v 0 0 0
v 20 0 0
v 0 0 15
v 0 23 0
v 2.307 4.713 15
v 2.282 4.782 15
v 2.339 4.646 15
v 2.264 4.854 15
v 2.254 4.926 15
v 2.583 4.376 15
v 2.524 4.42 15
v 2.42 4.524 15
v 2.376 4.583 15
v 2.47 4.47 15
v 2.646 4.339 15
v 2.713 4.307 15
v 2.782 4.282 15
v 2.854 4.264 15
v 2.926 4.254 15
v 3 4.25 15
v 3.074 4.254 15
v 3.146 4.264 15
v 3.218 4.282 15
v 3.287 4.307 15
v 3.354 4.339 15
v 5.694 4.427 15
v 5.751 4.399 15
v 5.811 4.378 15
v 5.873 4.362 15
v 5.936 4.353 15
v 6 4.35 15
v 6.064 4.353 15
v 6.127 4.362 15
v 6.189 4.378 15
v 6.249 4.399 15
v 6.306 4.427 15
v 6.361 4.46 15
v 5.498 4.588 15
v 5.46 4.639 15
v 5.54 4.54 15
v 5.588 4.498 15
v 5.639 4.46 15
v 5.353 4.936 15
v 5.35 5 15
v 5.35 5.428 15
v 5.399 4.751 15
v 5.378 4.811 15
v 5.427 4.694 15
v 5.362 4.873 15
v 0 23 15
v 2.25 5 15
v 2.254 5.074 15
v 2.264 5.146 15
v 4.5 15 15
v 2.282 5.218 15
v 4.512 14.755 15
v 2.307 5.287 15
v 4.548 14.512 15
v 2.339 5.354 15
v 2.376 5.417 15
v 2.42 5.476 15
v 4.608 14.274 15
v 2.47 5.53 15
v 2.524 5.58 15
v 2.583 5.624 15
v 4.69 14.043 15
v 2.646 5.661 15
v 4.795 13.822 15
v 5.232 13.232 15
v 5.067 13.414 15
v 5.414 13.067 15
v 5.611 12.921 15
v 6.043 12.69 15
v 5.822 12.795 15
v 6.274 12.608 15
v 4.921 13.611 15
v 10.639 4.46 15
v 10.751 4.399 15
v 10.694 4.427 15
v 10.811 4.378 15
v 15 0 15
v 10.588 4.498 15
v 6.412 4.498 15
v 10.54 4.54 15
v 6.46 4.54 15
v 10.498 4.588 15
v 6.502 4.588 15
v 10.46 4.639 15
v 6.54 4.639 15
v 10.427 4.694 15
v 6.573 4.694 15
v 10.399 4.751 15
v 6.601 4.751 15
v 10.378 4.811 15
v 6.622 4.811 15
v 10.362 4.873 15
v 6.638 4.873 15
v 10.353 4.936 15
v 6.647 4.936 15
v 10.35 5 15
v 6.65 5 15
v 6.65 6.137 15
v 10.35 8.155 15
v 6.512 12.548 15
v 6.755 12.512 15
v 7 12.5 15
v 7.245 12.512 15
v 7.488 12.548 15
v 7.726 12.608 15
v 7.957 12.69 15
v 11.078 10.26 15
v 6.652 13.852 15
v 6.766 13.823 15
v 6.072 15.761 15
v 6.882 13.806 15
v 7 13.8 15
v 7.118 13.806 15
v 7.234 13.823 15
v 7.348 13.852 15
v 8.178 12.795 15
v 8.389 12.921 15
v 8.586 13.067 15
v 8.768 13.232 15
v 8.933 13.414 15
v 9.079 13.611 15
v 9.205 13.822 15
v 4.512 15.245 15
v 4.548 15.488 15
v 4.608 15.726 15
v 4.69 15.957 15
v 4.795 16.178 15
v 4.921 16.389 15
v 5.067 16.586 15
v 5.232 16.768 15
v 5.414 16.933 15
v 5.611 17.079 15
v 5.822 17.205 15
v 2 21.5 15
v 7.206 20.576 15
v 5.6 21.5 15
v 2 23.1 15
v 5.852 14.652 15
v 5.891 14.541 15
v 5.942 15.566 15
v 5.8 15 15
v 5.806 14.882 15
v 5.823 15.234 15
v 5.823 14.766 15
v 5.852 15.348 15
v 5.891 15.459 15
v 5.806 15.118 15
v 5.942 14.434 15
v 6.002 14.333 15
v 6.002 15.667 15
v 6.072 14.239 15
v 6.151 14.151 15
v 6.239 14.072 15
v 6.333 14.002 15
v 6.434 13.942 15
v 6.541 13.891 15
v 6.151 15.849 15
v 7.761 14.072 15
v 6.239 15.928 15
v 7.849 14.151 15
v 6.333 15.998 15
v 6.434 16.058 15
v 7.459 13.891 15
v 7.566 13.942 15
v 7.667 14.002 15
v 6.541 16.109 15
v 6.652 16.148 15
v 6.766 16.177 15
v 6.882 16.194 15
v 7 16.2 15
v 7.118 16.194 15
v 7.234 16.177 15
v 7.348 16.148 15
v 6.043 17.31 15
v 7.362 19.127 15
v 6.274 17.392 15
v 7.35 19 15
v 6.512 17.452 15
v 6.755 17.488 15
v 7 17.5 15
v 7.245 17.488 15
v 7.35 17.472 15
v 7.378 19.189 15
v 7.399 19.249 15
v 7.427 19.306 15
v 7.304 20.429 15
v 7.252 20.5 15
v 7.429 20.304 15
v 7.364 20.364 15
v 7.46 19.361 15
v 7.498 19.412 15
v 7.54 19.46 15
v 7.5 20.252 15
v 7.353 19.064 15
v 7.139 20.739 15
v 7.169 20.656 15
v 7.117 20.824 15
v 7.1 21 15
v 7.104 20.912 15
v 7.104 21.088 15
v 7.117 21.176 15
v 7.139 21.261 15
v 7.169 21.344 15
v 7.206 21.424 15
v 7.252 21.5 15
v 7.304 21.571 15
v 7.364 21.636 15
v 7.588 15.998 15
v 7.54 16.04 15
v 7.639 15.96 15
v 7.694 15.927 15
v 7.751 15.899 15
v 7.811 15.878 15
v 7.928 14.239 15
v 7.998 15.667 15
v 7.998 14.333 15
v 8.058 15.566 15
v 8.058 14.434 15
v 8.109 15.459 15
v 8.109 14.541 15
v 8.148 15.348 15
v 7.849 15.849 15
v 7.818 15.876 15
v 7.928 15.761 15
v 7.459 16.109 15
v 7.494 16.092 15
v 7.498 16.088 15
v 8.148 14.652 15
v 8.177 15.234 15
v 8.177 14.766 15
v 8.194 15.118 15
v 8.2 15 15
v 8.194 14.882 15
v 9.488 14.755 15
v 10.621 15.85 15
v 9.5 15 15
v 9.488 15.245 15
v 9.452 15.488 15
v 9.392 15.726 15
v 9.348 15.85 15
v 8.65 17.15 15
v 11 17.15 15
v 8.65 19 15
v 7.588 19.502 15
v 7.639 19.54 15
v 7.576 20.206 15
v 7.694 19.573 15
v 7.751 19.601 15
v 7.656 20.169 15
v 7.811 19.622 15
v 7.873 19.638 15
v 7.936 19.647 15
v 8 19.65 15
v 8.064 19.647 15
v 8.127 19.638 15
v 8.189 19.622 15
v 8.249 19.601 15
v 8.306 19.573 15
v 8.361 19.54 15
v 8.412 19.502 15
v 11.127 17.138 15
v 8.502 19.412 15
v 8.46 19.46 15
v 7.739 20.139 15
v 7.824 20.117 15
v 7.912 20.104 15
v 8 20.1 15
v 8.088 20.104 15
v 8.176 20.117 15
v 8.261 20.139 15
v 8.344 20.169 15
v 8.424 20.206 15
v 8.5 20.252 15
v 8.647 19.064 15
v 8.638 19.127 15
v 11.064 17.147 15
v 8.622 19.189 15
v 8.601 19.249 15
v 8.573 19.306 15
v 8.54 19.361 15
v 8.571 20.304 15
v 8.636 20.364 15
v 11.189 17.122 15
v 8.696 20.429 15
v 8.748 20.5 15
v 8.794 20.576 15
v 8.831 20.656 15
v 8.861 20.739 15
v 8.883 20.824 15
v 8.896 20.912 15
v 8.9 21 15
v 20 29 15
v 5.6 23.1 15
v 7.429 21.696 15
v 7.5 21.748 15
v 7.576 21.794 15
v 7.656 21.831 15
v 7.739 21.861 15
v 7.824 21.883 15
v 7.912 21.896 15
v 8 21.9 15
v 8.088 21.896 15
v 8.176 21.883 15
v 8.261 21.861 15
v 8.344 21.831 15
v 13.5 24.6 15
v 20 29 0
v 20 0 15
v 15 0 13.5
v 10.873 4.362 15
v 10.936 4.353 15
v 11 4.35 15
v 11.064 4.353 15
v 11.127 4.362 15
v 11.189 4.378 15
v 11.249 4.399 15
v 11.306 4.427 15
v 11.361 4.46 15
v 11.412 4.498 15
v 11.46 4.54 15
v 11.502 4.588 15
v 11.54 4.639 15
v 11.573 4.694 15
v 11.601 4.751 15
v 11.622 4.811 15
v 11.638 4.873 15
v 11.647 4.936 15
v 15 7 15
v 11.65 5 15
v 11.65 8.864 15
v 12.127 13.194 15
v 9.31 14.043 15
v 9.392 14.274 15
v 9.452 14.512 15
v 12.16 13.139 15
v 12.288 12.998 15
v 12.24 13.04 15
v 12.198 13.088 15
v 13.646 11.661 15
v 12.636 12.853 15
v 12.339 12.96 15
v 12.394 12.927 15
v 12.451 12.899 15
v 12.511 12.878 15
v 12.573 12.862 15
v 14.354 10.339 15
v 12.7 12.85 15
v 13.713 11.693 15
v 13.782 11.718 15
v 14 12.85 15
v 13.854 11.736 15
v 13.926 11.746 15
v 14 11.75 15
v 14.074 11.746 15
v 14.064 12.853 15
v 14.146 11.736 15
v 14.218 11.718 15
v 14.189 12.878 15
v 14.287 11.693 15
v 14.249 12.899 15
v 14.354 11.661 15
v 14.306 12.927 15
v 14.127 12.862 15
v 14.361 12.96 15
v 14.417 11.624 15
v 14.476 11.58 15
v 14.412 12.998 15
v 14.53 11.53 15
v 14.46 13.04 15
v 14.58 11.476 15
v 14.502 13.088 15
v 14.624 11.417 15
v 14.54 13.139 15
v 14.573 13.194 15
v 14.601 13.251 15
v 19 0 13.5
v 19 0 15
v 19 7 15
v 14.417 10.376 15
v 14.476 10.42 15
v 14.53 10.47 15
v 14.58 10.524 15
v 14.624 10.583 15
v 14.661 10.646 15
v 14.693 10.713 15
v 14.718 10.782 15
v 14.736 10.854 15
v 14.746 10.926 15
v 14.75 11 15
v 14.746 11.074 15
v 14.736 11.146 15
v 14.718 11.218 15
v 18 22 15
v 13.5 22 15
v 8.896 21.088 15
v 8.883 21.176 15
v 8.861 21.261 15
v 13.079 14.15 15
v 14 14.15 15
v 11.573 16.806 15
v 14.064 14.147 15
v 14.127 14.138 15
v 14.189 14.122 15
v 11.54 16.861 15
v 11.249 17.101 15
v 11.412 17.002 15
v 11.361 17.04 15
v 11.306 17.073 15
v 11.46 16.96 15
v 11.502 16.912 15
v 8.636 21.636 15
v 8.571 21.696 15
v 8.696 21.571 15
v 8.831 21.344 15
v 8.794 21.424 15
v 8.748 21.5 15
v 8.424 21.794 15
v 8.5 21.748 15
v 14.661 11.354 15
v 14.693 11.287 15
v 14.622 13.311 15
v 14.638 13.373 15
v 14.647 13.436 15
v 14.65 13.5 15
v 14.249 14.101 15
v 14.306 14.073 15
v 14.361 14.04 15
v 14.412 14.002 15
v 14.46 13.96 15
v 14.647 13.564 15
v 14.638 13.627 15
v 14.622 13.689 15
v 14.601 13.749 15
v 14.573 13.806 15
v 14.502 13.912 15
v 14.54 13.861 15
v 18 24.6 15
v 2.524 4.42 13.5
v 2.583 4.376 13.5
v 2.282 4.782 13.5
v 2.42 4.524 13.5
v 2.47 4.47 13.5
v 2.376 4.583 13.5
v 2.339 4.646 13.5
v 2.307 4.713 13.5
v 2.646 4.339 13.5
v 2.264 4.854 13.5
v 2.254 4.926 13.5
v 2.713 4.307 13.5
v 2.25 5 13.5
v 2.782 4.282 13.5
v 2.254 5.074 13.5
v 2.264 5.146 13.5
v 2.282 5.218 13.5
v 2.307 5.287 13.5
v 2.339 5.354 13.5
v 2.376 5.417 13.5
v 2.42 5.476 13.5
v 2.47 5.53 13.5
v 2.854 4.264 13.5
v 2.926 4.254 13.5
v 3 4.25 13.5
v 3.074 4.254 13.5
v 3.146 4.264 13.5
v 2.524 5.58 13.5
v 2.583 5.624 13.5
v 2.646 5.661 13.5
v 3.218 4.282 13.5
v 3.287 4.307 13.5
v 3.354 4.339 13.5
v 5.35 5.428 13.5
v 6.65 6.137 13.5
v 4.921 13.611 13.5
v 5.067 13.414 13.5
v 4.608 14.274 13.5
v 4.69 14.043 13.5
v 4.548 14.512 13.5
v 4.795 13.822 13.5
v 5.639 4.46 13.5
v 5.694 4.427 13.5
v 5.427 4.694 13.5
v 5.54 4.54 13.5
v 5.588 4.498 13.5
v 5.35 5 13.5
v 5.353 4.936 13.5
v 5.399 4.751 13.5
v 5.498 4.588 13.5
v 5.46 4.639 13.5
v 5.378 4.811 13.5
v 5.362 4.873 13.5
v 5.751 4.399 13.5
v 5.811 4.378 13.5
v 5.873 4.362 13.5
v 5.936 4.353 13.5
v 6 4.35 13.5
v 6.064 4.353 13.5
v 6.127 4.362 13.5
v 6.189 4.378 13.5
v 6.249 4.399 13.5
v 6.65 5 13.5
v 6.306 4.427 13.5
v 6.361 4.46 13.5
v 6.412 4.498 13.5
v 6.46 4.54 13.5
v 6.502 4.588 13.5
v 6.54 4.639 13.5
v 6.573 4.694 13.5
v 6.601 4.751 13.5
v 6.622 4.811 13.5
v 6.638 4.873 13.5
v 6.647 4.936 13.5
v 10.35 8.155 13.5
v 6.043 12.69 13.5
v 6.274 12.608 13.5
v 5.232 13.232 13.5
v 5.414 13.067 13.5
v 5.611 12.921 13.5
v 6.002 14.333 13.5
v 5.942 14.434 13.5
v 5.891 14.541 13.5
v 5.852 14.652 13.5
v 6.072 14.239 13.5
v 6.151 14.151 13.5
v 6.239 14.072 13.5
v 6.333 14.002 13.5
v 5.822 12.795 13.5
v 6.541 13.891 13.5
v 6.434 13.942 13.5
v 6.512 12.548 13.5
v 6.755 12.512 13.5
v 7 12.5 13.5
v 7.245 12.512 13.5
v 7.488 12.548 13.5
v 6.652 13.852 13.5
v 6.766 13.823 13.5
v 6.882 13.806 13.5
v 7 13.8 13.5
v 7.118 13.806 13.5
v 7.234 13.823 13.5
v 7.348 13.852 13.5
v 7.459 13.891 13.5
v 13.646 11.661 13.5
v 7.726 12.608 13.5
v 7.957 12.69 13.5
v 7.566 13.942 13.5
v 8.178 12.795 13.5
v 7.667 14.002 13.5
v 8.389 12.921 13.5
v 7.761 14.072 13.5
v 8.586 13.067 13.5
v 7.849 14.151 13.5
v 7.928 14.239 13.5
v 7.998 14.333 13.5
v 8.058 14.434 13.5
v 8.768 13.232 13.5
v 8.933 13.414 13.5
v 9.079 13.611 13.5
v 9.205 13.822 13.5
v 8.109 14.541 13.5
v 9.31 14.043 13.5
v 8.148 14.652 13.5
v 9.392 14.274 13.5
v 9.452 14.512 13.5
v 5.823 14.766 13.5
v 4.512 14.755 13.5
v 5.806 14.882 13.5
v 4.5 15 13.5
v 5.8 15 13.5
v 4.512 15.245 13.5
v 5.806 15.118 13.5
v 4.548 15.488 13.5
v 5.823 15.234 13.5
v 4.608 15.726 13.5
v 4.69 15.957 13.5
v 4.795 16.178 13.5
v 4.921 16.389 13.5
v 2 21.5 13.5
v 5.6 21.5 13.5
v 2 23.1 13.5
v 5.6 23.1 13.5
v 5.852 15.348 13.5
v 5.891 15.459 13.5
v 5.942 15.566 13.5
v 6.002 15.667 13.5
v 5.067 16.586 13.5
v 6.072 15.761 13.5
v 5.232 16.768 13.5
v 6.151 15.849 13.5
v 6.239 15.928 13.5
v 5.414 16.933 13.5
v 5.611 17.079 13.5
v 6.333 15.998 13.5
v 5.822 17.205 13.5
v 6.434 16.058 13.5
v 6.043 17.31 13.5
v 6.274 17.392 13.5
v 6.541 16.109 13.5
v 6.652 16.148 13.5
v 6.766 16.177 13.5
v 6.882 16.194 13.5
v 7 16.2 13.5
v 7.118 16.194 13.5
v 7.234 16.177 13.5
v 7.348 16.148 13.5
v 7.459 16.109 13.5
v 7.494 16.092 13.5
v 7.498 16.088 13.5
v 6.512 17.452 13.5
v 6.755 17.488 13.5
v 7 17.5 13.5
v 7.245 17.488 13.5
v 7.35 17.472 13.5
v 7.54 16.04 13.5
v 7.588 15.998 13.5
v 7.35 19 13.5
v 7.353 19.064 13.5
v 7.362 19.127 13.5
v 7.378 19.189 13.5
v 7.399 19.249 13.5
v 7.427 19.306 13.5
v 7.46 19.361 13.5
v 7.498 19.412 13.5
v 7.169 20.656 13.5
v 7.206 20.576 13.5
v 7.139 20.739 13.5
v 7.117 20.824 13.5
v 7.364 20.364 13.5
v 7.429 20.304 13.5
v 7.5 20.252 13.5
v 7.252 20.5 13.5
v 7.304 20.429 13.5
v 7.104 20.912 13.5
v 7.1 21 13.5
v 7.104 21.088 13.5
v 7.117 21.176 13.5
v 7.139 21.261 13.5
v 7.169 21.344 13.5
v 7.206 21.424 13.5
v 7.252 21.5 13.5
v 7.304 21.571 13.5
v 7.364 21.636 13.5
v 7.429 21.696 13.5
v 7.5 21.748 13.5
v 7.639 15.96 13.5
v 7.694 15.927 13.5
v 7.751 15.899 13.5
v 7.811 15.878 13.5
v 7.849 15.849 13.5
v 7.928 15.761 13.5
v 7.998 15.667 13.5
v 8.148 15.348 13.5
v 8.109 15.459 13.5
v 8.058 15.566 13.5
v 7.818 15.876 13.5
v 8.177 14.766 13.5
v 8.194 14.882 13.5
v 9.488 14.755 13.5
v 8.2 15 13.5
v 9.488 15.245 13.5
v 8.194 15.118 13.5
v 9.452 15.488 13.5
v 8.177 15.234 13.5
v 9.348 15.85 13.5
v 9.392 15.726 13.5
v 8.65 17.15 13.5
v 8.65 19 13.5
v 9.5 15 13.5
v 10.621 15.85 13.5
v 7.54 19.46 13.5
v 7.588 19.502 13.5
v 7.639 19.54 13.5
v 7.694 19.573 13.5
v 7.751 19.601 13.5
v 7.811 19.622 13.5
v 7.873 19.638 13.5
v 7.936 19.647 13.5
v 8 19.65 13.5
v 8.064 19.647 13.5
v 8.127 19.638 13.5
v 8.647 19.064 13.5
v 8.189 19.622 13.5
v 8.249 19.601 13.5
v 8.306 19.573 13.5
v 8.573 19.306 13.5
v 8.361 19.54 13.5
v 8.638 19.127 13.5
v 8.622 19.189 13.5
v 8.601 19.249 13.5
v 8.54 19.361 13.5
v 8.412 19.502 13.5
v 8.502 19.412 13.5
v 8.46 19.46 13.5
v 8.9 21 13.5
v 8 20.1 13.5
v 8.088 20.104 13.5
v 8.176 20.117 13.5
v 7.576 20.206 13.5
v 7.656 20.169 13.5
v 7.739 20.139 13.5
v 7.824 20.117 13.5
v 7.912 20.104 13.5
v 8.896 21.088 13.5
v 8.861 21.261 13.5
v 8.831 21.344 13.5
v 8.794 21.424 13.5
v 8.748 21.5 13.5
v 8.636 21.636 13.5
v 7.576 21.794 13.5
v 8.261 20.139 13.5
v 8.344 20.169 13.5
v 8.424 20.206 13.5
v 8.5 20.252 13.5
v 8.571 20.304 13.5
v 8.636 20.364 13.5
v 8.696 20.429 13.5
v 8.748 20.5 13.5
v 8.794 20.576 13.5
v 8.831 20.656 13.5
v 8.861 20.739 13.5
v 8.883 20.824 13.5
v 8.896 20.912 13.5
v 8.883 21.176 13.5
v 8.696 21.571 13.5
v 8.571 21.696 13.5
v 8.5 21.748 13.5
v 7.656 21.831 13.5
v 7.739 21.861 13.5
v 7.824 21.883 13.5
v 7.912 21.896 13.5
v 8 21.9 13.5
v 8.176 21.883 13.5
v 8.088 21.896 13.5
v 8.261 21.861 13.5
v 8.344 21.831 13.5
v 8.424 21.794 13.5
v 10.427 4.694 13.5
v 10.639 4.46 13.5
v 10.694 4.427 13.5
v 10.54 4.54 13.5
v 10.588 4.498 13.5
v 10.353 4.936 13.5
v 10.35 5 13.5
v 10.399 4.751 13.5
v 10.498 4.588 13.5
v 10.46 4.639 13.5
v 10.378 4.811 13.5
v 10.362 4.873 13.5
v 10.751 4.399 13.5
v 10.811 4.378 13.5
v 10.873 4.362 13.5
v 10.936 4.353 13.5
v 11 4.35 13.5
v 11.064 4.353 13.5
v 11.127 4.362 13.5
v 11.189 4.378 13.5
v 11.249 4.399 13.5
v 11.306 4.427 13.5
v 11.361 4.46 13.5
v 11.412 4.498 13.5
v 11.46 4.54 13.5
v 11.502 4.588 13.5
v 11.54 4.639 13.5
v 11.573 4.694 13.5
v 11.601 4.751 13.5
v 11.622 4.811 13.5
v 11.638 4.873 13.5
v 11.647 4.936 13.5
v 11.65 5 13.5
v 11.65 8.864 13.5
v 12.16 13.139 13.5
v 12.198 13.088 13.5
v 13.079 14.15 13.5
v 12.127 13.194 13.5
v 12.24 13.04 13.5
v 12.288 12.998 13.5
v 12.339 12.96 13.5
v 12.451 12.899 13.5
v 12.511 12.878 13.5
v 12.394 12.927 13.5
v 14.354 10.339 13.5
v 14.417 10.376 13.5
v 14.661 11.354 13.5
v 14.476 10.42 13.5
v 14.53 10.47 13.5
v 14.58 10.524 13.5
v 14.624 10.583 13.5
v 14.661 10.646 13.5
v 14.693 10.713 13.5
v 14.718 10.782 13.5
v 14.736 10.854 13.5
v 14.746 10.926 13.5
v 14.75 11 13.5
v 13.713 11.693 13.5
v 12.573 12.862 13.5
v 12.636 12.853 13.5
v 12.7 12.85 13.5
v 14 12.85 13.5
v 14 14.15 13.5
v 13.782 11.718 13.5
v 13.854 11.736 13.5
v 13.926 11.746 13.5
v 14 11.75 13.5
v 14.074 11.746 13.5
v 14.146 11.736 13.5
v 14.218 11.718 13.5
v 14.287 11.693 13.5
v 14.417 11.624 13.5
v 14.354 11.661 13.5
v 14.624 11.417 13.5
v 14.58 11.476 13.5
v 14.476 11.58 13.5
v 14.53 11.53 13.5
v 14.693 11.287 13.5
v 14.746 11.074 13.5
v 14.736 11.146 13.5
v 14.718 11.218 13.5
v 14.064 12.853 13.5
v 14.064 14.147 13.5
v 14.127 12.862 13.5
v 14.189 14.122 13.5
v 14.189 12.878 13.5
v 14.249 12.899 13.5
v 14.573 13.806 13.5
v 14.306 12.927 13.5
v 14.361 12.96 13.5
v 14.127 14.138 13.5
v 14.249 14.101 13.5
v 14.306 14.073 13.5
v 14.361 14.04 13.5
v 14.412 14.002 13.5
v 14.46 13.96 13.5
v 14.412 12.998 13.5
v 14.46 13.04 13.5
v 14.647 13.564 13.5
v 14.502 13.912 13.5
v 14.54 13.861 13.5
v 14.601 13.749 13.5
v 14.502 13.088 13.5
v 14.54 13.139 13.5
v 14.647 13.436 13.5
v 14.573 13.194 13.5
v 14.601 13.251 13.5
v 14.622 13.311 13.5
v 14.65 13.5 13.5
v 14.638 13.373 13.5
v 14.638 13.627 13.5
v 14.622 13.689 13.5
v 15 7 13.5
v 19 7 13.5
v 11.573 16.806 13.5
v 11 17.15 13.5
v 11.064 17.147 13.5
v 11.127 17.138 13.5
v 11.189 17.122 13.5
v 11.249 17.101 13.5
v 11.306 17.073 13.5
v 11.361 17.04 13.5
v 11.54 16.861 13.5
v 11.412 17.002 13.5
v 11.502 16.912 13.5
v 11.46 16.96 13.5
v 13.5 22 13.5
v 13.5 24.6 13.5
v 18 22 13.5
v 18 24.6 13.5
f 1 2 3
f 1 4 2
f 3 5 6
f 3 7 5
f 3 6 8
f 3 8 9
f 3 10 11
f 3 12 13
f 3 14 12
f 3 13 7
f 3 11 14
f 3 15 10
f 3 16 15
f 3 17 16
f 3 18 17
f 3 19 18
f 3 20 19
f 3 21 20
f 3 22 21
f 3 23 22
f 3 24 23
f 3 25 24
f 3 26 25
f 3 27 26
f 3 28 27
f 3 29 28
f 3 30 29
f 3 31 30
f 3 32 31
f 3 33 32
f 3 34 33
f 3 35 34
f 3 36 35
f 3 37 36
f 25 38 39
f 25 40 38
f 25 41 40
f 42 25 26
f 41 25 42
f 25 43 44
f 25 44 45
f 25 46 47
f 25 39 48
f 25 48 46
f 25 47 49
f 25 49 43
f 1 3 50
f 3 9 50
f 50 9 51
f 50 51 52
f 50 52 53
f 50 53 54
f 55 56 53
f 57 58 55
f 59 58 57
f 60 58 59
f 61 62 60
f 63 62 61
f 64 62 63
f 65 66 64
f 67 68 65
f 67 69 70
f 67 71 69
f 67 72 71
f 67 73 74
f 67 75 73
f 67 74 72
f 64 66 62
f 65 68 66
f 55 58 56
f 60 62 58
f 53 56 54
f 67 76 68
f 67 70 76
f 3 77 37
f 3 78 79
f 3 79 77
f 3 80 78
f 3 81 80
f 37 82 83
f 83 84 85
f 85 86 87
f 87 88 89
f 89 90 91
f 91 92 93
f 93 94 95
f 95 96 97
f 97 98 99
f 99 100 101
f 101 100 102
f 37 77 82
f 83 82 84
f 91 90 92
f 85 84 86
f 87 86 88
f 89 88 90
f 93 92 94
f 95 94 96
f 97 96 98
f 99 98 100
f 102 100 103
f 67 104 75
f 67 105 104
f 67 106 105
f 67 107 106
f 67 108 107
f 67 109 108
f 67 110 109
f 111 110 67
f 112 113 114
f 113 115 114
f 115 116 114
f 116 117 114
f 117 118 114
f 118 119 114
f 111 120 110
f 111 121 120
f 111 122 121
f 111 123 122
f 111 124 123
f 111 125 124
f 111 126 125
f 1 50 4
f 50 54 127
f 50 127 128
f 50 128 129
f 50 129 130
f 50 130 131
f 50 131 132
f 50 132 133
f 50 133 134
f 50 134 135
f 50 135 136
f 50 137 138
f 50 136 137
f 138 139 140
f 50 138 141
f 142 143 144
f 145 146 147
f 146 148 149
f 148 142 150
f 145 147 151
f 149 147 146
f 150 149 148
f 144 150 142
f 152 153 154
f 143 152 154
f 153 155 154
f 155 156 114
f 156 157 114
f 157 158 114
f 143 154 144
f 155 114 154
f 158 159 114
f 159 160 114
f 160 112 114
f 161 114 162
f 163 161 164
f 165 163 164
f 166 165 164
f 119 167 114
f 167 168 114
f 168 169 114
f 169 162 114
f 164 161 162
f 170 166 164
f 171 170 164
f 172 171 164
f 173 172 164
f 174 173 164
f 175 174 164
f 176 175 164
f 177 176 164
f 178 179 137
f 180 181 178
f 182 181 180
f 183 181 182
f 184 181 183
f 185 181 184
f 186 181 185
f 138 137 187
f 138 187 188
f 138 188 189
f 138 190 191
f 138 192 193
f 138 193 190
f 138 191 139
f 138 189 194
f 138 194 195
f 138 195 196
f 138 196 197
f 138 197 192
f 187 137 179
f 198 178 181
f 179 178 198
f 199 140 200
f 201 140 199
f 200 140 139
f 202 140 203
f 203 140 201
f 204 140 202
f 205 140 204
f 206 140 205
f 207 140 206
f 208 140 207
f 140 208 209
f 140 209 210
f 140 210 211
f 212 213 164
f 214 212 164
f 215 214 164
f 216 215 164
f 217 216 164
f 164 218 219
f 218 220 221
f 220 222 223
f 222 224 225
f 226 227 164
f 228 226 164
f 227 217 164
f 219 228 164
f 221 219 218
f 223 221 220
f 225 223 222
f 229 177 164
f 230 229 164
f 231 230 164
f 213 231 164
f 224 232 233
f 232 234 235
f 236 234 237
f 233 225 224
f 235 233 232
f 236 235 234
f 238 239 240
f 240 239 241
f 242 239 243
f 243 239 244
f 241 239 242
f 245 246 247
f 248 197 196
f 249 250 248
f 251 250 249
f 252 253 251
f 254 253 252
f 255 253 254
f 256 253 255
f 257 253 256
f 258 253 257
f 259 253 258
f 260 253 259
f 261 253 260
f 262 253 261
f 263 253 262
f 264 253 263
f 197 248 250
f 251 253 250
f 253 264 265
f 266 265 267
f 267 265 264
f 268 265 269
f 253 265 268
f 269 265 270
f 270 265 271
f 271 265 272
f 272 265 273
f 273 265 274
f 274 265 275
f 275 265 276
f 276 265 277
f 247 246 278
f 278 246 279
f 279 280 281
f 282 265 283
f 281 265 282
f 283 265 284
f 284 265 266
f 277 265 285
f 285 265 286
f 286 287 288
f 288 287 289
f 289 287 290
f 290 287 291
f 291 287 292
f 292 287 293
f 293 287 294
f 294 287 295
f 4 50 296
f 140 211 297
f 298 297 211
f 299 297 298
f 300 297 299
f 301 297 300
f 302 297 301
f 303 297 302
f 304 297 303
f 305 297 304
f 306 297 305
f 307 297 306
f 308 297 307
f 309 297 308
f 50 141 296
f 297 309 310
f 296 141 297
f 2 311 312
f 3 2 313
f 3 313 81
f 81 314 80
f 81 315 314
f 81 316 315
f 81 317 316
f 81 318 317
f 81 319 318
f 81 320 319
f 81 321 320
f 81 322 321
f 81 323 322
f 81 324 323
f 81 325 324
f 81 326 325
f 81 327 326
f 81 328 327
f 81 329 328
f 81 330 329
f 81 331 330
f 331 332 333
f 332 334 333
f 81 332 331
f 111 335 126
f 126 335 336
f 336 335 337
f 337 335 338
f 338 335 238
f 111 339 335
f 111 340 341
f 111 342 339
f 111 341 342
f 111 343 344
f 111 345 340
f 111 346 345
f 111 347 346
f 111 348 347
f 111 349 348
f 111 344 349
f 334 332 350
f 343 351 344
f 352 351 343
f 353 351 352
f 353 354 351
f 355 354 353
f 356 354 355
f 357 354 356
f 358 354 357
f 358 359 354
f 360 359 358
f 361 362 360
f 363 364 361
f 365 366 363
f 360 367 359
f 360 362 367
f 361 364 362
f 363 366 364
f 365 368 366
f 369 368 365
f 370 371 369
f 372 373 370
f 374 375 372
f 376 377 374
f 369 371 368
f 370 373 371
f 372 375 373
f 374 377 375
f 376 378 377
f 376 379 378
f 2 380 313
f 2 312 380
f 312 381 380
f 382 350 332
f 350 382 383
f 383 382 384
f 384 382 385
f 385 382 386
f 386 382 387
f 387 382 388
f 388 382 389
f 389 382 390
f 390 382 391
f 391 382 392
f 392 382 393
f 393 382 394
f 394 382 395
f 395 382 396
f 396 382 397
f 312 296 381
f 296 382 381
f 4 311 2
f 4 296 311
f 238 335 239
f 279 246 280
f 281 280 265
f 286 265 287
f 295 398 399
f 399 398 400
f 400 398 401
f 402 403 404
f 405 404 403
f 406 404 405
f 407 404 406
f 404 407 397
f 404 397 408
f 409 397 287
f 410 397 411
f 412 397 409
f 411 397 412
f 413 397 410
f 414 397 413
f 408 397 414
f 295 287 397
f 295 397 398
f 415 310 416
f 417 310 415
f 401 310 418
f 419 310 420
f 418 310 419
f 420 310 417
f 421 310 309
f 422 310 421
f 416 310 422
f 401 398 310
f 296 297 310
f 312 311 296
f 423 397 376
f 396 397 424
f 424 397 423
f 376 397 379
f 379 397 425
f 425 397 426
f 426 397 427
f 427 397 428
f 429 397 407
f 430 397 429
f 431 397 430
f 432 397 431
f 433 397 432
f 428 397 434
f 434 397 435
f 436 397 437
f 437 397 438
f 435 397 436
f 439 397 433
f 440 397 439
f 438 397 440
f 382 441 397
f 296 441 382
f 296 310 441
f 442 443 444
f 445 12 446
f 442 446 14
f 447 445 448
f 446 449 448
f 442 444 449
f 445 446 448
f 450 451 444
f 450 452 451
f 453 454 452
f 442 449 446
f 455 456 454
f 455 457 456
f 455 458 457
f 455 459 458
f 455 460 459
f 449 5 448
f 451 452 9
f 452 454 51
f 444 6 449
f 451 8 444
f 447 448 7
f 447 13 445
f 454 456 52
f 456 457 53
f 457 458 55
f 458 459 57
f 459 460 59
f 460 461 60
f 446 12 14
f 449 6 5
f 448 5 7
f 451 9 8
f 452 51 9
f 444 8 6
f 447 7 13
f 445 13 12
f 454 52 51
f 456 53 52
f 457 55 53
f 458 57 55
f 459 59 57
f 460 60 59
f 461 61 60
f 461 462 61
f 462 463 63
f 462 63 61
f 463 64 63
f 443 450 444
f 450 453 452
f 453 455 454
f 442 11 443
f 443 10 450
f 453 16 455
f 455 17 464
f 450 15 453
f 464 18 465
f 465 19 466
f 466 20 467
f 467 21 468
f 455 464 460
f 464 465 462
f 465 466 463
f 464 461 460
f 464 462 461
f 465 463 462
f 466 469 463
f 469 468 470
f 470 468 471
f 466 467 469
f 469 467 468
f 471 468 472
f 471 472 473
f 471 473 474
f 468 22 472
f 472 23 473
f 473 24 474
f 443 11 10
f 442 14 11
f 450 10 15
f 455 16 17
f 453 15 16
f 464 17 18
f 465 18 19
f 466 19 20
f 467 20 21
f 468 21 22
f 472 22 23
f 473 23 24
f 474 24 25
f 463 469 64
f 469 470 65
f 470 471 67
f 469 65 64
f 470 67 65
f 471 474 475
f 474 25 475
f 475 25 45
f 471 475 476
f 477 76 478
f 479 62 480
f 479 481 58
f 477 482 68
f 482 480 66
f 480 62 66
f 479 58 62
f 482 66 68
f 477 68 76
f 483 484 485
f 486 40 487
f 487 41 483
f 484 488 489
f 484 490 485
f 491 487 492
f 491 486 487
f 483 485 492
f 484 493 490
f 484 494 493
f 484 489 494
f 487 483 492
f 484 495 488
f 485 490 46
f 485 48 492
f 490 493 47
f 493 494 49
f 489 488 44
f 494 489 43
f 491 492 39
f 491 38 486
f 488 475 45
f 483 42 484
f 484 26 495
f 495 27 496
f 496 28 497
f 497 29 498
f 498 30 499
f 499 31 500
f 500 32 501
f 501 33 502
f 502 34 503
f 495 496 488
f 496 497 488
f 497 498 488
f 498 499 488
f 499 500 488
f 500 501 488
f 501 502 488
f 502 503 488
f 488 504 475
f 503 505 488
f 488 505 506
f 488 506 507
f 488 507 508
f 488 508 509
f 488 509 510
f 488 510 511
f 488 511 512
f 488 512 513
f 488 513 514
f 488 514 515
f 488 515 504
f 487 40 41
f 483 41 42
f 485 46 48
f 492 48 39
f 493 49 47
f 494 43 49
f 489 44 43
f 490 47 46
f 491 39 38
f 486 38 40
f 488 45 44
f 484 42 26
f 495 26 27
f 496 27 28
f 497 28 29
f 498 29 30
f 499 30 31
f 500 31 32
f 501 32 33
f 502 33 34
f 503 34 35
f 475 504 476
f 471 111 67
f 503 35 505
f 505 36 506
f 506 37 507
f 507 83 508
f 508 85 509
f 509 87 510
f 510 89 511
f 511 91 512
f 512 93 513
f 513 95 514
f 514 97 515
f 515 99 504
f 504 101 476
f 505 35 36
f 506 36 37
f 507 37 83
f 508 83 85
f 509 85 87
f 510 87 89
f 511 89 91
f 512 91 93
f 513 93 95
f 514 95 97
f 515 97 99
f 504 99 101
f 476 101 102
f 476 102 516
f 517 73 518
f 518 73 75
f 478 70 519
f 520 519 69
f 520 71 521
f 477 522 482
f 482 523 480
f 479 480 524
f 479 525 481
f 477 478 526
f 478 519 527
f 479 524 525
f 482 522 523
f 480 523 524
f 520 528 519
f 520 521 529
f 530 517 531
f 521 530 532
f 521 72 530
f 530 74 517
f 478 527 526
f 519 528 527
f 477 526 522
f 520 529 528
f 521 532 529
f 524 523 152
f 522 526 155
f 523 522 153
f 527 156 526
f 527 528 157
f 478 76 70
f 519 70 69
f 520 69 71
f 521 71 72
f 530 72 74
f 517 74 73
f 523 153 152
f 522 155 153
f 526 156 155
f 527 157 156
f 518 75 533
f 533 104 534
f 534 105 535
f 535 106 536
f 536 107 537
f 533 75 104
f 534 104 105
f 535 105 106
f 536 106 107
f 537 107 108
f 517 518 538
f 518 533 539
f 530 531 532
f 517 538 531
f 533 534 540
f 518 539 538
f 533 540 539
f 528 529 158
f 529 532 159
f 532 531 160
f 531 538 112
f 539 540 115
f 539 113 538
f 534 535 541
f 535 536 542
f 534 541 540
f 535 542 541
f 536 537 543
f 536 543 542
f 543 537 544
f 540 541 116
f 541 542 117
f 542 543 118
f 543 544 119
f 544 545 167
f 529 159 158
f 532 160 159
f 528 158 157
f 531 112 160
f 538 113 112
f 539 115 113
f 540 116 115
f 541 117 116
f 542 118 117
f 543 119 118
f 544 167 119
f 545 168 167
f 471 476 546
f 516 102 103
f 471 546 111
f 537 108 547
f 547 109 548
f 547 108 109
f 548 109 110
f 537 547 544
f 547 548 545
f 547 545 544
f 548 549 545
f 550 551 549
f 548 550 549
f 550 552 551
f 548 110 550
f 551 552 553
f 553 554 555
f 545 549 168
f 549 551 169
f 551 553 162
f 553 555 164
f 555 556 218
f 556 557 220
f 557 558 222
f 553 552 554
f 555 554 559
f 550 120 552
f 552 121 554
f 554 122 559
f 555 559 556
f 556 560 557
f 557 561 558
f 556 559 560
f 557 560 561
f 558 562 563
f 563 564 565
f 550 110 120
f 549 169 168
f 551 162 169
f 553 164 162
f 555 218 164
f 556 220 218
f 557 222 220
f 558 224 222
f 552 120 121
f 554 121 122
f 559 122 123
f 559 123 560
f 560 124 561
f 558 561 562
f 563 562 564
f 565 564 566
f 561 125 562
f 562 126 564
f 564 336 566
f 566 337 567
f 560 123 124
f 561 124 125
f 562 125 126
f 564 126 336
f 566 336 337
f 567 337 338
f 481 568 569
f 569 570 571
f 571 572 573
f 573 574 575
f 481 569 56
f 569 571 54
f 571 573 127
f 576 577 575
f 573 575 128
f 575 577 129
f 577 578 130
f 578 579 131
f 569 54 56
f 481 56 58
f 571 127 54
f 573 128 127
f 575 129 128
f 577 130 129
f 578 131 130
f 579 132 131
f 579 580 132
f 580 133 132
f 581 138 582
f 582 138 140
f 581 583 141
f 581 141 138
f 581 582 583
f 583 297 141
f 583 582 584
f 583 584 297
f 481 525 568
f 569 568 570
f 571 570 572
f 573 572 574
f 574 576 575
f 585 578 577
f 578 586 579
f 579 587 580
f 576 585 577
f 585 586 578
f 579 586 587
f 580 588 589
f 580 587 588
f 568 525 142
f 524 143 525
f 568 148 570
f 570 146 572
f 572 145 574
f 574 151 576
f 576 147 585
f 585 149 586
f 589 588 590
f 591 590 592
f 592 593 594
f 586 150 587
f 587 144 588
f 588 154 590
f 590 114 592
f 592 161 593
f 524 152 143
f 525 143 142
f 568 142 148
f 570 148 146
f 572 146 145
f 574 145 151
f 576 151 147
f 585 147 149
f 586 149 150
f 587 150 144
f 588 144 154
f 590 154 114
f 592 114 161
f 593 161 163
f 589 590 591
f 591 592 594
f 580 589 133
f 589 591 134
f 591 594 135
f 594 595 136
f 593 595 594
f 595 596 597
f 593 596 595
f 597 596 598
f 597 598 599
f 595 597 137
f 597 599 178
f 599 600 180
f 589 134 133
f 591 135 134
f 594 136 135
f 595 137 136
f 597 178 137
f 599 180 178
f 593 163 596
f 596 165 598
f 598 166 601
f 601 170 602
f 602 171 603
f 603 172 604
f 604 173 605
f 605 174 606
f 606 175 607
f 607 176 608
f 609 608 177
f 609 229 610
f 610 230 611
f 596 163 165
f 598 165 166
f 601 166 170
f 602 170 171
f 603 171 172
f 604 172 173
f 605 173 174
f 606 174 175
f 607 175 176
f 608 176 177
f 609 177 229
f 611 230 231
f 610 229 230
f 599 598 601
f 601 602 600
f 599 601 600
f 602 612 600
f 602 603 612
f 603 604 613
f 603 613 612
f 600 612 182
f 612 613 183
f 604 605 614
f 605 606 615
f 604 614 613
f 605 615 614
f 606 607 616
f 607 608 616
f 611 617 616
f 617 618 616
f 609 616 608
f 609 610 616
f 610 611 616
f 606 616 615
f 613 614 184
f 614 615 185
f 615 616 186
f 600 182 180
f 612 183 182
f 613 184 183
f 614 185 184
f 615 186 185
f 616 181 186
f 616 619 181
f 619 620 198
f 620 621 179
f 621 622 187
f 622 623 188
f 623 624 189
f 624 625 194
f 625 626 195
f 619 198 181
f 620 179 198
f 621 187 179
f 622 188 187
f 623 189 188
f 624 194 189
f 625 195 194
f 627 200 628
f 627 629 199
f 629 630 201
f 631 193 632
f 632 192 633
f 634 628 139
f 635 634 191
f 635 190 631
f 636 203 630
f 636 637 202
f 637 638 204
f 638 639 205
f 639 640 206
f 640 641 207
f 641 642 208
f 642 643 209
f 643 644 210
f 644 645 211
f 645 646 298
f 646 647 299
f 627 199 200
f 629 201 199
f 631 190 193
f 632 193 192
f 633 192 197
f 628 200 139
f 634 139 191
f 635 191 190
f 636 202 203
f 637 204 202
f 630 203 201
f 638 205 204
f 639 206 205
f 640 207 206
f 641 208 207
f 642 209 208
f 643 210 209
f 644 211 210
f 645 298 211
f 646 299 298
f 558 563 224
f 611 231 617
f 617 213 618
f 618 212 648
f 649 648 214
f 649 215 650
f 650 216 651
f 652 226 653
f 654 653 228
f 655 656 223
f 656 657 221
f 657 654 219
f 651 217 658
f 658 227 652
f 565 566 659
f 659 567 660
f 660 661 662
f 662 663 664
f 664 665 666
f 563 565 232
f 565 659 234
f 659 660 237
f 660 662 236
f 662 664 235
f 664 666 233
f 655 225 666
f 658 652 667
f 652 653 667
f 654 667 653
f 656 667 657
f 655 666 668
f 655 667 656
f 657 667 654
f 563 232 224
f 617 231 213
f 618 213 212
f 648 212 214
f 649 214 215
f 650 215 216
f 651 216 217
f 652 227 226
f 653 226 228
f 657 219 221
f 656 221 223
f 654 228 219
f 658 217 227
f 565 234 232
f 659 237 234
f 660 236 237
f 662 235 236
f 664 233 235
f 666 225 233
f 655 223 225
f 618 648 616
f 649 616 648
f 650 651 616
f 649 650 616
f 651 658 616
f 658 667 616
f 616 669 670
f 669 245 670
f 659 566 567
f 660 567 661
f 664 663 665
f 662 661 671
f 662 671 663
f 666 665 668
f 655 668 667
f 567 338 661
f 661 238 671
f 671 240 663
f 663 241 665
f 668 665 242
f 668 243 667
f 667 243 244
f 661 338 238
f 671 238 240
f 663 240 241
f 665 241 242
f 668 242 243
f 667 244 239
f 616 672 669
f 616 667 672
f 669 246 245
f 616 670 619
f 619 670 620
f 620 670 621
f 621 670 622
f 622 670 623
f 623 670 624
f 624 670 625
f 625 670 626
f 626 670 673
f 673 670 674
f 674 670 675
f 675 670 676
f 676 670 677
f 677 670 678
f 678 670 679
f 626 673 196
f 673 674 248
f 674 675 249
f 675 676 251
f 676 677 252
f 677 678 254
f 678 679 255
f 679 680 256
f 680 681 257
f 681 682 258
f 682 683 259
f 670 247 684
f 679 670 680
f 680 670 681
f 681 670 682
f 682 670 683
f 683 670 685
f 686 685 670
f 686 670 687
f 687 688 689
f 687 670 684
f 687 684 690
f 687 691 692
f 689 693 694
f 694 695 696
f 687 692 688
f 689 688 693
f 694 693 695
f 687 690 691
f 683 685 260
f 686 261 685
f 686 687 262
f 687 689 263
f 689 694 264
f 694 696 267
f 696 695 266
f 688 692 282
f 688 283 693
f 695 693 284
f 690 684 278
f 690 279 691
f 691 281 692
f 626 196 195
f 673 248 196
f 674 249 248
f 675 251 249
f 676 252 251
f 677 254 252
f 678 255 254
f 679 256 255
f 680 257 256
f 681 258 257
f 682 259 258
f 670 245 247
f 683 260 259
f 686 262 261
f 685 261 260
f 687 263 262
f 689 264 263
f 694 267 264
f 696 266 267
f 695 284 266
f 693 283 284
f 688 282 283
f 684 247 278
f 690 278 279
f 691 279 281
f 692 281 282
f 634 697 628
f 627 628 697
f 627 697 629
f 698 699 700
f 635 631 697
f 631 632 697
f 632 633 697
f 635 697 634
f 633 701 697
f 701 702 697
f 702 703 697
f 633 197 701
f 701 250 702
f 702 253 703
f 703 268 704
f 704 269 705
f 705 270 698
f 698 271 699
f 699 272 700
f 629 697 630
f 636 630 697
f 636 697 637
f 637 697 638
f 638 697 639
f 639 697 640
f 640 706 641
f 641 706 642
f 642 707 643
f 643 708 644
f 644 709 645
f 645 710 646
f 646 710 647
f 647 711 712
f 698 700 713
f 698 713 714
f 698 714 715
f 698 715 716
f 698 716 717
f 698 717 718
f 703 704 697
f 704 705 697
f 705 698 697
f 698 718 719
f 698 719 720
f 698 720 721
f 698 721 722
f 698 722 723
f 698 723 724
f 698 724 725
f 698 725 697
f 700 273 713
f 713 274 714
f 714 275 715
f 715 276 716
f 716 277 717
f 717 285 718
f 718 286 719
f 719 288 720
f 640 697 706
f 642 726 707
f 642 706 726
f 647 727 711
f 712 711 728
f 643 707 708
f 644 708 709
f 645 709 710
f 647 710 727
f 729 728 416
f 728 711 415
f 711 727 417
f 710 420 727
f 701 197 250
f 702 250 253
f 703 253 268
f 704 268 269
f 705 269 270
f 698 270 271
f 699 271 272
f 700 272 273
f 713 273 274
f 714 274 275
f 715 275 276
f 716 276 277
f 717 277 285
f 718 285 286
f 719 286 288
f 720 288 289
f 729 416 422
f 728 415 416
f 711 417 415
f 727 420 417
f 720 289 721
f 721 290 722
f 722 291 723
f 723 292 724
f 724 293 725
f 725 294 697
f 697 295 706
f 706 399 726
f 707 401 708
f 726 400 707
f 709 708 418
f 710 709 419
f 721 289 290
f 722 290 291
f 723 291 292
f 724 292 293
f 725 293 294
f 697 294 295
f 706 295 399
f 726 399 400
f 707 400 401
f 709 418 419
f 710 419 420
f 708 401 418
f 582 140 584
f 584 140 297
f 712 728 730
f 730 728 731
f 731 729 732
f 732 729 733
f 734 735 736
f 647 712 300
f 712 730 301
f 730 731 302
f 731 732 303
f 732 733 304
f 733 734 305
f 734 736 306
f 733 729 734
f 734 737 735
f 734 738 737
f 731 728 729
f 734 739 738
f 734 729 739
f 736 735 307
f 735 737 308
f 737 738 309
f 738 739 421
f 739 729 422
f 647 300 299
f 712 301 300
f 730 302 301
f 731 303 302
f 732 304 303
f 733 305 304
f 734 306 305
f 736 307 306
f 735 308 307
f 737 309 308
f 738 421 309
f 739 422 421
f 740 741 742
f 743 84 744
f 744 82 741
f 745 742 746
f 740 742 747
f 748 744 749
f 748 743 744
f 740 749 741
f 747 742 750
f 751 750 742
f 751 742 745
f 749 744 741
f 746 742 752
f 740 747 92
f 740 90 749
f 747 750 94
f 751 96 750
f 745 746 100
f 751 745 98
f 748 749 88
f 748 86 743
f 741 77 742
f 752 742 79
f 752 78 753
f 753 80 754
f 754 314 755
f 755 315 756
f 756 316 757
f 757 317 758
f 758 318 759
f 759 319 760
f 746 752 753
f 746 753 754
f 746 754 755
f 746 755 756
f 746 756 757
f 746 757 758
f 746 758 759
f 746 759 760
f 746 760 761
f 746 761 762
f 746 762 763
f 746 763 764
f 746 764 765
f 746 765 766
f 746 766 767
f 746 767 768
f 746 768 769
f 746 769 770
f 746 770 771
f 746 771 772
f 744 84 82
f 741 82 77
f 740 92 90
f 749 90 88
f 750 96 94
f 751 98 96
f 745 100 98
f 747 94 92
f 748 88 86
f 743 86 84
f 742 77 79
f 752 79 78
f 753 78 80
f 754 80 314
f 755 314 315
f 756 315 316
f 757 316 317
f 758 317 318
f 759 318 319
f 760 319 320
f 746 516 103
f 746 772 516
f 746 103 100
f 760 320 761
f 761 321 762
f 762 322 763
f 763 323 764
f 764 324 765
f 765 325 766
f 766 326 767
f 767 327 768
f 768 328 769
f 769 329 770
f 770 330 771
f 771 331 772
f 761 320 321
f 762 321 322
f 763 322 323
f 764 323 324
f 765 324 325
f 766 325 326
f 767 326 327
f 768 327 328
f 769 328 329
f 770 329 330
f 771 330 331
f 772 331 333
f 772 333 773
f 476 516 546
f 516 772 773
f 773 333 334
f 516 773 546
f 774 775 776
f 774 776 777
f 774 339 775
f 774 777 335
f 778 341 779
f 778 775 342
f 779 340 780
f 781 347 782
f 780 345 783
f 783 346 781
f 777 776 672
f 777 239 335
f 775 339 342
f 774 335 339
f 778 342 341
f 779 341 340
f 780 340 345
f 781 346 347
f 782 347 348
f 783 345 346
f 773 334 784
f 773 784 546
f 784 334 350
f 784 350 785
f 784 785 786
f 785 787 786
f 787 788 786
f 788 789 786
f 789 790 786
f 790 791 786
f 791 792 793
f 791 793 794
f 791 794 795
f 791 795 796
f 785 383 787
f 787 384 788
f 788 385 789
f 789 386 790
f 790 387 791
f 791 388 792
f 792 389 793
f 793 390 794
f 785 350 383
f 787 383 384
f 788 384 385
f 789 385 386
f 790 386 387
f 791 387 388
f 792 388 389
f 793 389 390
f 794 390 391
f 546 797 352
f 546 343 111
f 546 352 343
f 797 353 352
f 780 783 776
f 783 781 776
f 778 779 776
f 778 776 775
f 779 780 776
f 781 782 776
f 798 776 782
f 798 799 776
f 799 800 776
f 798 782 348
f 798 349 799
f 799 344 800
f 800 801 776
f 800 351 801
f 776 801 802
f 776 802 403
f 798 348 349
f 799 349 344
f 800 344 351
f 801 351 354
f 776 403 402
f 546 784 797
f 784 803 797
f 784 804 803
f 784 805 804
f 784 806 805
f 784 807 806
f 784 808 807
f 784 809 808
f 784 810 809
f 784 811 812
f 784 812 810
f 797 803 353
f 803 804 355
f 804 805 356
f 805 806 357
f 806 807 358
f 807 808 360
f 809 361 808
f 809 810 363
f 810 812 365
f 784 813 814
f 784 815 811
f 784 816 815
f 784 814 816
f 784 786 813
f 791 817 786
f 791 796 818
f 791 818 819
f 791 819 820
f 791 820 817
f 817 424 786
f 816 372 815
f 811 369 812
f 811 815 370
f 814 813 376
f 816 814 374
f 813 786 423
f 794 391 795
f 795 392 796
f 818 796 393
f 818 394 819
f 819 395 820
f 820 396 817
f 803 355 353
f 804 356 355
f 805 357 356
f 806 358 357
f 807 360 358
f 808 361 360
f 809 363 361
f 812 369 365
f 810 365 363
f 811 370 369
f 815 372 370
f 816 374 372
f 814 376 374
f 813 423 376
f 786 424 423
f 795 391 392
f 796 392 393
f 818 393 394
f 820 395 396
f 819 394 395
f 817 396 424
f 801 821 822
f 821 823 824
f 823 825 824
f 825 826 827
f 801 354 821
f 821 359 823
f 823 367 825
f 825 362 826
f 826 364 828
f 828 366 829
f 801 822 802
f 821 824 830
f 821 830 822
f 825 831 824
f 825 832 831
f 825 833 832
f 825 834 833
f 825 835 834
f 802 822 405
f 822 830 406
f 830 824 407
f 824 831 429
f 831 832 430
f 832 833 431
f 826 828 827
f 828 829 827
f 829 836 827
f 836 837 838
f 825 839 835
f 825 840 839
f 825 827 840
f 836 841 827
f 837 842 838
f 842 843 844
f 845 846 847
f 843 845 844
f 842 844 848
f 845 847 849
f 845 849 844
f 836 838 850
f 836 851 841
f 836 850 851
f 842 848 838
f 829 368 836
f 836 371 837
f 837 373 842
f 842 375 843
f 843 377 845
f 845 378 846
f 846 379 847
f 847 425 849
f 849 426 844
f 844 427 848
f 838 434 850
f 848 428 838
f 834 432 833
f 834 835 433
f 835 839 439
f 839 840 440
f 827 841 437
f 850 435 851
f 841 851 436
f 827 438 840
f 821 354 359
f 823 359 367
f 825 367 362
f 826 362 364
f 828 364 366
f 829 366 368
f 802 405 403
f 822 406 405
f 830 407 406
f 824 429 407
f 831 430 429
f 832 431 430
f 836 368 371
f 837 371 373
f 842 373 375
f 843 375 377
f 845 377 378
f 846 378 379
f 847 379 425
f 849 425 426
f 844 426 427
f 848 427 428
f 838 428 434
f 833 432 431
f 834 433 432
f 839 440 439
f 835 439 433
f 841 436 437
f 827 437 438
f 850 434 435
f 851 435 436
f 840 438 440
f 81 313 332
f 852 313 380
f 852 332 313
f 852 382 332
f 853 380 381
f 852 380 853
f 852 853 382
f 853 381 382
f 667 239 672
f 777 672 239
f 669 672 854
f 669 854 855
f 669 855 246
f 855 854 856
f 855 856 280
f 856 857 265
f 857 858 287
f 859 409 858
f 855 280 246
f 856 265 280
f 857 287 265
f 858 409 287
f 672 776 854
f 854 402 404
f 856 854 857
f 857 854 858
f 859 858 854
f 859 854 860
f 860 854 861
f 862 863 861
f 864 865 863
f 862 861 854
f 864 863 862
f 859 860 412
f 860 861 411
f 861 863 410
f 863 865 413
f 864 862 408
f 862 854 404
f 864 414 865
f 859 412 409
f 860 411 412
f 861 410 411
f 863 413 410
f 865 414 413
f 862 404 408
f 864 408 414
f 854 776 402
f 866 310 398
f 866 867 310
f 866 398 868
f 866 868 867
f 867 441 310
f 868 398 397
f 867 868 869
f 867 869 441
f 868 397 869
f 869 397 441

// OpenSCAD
// Facade game piece in mm: X width, Y height, Z depth.
// Place Z=0 flat on the build plate; all recessed details are 1.5 mm deep.
$fn=64;
module rect(x,y,w,h){translate([x,y]) square([w,h]);}
module disk(x,y,r){translate([x,y]) circle(r=r);}
module line(a,b,w=1.5){hull(){translate(a) circle(d=w);translate(b) circle(d=w);}}
module path(points,w=1.5){for(i=[0:len(points)-2]) line(points[i],points[i+1],w);}
module cross_icon(x,y,size=6,bar=1.8){union(){rect(x-size/2,y-bar/2,size,bar);rect(x-bar/2,y-size/2,bar,size);}}
module tank(x,y,w,h){union(){rect(x,y,w,h-w/2);disk(x+w/2,y+h-w/2,w/2);}}
module ring(x,y,r,w=1.3){difference(){disk(x,y,r);disk(x,y,r-w);}}

module silhouette(){
polygon([[0,0],[20,0],[20,29],[0,23]]);
}
module facade_recesses(){union(){
line([3,5],[14,11],1.5);
line([6,5],[6,6.6],1.3);line([11,5],[11,9.4],1.3);
rect(15,0,4,7);
ring(7,15,2.5,1.3);
disk(8,21,0.9);
path([[8,19],[8,16.5],[11,16.5],[12.7,13.5],[14,13.5]],1.3);
rect(2,21.5,3.6,1.6);rect(13.5,22,4.5,2.6);
}}
difference(){
 linear_extrude(height=15) silhouette();
 translate([0,0,13.5]) linear_extrude(height=2) facade_recesses();
}
